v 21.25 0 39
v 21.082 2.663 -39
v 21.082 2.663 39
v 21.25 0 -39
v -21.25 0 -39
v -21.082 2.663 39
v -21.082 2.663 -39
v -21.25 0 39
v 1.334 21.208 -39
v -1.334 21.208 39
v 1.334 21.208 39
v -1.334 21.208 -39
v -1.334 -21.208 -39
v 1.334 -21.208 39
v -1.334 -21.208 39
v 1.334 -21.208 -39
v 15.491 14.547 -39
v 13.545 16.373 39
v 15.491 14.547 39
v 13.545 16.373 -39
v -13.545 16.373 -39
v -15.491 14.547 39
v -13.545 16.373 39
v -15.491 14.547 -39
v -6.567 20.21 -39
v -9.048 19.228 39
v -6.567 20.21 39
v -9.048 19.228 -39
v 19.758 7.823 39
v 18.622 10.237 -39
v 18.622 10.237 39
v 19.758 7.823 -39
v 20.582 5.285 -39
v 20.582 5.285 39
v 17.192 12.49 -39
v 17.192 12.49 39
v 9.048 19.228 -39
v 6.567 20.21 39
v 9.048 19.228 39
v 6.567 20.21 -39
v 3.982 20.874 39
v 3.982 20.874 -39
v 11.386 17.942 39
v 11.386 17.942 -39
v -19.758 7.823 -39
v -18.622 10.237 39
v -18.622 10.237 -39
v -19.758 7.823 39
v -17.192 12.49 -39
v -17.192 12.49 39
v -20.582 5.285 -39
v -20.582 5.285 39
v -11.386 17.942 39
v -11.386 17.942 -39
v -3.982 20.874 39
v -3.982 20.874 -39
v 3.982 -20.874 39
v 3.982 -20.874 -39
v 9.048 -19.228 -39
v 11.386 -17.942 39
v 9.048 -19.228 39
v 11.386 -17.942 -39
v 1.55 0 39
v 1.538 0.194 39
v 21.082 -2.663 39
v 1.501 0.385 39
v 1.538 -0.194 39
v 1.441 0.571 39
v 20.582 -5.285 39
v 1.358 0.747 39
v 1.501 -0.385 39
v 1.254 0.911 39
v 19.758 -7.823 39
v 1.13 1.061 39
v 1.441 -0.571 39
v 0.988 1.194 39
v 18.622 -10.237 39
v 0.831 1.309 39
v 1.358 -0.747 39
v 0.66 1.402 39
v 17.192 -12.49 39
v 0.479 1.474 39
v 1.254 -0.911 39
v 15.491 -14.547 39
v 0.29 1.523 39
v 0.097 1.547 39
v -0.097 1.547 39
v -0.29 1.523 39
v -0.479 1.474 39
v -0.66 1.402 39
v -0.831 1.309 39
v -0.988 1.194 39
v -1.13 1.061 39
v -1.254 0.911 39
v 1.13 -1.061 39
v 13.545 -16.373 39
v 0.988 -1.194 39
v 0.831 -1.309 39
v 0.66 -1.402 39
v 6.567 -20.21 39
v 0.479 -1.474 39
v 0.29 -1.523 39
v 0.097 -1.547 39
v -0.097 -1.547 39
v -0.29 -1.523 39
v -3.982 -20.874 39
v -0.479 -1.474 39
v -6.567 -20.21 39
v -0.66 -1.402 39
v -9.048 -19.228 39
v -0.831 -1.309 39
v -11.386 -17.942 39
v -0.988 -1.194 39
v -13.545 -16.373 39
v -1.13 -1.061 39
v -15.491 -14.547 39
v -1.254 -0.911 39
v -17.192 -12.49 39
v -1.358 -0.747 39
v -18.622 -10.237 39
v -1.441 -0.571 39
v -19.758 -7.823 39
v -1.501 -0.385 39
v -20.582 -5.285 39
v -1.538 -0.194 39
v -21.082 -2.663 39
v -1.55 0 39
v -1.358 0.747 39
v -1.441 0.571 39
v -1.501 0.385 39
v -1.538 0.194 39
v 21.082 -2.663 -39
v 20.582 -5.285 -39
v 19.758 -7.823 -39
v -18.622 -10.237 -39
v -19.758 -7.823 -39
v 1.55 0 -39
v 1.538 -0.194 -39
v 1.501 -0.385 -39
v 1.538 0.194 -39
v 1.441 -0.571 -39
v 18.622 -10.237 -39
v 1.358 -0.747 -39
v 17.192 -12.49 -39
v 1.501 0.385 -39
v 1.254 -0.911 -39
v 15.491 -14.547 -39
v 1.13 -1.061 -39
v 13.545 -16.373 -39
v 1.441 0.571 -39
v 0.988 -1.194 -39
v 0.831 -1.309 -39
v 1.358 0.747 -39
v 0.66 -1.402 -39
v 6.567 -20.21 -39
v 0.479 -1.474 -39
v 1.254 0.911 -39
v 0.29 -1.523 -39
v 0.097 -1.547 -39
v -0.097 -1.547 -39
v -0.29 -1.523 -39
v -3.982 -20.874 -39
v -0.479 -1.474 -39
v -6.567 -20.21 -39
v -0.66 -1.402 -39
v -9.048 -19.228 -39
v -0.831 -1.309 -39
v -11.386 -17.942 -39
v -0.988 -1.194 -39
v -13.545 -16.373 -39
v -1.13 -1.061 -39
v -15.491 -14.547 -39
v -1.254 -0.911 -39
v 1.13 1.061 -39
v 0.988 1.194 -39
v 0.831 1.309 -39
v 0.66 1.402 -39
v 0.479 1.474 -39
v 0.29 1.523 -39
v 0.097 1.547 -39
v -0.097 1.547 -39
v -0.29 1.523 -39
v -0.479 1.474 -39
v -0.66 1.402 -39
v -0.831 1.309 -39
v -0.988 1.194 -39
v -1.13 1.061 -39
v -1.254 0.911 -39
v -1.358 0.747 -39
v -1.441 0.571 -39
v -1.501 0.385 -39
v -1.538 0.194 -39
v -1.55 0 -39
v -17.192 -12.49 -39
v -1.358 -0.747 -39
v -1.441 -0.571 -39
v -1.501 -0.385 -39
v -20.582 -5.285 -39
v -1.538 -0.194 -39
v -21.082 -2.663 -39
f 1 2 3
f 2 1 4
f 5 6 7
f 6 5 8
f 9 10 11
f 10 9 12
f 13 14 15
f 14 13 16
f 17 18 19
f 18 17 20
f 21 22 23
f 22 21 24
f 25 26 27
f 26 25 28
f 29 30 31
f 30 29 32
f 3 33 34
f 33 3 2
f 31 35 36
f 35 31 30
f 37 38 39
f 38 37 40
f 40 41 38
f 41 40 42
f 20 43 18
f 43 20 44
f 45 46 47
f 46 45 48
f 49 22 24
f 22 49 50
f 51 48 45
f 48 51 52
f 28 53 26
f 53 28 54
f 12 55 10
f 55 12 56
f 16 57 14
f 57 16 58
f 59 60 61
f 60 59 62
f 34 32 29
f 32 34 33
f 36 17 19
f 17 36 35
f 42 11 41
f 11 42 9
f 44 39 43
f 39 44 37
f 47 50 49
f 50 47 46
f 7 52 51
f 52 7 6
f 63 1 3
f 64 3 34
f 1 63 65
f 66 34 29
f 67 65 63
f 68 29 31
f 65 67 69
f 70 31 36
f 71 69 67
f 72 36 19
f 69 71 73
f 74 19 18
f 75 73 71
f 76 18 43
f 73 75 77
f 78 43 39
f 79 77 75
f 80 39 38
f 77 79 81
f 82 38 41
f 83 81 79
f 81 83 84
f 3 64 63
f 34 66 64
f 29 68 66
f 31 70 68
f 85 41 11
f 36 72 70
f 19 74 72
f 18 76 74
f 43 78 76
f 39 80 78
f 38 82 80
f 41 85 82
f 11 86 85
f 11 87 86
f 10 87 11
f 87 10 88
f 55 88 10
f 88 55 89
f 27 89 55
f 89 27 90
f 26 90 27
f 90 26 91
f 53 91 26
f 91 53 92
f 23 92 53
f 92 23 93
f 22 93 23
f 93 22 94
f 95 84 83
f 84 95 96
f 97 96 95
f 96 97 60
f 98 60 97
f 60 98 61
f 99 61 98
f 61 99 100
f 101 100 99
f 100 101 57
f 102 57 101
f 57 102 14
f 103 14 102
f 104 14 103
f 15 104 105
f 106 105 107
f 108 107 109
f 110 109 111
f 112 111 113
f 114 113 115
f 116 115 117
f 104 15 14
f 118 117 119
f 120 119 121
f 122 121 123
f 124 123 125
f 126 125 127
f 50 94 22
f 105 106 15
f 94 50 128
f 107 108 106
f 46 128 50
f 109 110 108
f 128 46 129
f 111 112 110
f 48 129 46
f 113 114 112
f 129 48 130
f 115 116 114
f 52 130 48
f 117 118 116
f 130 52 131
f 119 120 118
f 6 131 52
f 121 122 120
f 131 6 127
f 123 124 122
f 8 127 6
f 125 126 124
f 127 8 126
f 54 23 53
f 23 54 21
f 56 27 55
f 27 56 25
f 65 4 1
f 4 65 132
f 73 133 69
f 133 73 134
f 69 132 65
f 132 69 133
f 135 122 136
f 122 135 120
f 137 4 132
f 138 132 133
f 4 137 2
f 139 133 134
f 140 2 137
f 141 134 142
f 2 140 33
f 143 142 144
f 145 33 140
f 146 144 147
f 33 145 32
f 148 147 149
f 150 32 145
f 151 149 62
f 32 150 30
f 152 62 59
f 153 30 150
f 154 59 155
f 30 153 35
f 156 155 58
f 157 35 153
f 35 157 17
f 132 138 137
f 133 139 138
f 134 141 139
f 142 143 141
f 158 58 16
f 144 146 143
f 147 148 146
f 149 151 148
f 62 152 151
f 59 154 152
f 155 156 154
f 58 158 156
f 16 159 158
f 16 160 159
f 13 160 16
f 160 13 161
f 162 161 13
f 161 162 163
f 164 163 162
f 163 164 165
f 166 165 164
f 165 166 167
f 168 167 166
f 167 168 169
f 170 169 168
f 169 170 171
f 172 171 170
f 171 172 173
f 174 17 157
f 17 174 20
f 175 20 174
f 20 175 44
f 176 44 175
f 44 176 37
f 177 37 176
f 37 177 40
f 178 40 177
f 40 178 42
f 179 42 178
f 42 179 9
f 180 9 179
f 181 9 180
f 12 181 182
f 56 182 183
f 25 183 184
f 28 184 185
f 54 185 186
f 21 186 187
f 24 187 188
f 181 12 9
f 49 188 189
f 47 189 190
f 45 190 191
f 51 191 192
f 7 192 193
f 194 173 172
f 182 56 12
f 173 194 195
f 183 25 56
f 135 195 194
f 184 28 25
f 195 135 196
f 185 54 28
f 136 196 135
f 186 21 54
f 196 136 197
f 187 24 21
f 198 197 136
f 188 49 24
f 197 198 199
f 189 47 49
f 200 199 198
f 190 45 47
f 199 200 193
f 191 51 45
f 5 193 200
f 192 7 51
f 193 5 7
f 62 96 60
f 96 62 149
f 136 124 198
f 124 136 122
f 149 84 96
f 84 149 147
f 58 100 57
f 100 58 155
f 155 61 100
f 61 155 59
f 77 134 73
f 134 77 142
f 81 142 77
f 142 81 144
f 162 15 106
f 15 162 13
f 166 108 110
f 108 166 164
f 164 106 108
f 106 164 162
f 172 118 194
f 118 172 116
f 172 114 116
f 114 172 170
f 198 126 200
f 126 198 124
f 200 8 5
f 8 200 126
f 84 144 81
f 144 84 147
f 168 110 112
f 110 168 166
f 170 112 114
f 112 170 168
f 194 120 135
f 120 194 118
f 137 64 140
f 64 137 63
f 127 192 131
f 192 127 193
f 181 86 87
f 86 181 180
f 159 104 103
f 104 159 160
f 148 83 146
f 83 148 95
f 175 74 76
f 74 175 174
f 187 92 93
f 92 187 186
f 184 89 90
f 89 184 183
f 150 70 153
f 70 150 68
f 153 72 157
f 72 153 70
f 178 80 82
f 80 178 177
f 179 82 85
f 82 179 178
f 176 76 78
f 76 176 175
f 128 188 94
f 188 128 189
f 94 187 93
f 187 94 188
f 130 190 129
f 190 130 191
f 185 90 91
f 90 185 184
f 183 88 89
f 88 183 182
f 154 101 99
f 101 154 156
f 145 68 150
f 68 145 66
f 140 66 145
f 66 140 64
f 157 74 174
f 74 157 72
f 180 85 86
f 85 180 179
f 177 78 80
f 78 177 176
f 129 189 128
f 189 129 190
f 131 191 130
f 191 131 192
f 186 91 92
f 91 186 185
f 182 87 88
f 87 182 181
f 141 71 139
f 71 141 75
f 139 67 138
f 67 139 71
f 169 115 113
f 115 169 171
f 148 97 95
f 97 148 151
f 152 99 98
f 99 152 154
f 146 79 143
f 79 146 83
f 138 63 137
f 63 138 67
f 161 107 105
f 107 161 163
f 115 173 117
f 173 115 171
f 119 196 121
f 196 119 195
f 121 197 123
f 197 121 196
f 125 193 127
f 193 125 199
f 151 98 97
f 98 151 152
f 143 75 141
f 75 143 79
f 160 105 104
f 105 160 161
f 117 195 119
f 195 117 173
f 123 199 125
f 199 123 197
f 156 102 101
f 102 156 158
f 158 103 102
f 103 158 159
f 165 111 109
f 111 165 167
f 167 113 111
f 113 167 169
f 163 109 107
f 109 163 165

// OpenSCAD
$fn = 50;


difference() {
	union() {
		translate(v = [0, 0, -39.0000000000]) {
			cylinder(h = 78, r = 21.2500000000);
		}
	}
	union() {
		translate(v = [0, 0, -100.0000000000]) {
			cylinder(h = 200, r = 1.5500000000);
		}
	}
}
